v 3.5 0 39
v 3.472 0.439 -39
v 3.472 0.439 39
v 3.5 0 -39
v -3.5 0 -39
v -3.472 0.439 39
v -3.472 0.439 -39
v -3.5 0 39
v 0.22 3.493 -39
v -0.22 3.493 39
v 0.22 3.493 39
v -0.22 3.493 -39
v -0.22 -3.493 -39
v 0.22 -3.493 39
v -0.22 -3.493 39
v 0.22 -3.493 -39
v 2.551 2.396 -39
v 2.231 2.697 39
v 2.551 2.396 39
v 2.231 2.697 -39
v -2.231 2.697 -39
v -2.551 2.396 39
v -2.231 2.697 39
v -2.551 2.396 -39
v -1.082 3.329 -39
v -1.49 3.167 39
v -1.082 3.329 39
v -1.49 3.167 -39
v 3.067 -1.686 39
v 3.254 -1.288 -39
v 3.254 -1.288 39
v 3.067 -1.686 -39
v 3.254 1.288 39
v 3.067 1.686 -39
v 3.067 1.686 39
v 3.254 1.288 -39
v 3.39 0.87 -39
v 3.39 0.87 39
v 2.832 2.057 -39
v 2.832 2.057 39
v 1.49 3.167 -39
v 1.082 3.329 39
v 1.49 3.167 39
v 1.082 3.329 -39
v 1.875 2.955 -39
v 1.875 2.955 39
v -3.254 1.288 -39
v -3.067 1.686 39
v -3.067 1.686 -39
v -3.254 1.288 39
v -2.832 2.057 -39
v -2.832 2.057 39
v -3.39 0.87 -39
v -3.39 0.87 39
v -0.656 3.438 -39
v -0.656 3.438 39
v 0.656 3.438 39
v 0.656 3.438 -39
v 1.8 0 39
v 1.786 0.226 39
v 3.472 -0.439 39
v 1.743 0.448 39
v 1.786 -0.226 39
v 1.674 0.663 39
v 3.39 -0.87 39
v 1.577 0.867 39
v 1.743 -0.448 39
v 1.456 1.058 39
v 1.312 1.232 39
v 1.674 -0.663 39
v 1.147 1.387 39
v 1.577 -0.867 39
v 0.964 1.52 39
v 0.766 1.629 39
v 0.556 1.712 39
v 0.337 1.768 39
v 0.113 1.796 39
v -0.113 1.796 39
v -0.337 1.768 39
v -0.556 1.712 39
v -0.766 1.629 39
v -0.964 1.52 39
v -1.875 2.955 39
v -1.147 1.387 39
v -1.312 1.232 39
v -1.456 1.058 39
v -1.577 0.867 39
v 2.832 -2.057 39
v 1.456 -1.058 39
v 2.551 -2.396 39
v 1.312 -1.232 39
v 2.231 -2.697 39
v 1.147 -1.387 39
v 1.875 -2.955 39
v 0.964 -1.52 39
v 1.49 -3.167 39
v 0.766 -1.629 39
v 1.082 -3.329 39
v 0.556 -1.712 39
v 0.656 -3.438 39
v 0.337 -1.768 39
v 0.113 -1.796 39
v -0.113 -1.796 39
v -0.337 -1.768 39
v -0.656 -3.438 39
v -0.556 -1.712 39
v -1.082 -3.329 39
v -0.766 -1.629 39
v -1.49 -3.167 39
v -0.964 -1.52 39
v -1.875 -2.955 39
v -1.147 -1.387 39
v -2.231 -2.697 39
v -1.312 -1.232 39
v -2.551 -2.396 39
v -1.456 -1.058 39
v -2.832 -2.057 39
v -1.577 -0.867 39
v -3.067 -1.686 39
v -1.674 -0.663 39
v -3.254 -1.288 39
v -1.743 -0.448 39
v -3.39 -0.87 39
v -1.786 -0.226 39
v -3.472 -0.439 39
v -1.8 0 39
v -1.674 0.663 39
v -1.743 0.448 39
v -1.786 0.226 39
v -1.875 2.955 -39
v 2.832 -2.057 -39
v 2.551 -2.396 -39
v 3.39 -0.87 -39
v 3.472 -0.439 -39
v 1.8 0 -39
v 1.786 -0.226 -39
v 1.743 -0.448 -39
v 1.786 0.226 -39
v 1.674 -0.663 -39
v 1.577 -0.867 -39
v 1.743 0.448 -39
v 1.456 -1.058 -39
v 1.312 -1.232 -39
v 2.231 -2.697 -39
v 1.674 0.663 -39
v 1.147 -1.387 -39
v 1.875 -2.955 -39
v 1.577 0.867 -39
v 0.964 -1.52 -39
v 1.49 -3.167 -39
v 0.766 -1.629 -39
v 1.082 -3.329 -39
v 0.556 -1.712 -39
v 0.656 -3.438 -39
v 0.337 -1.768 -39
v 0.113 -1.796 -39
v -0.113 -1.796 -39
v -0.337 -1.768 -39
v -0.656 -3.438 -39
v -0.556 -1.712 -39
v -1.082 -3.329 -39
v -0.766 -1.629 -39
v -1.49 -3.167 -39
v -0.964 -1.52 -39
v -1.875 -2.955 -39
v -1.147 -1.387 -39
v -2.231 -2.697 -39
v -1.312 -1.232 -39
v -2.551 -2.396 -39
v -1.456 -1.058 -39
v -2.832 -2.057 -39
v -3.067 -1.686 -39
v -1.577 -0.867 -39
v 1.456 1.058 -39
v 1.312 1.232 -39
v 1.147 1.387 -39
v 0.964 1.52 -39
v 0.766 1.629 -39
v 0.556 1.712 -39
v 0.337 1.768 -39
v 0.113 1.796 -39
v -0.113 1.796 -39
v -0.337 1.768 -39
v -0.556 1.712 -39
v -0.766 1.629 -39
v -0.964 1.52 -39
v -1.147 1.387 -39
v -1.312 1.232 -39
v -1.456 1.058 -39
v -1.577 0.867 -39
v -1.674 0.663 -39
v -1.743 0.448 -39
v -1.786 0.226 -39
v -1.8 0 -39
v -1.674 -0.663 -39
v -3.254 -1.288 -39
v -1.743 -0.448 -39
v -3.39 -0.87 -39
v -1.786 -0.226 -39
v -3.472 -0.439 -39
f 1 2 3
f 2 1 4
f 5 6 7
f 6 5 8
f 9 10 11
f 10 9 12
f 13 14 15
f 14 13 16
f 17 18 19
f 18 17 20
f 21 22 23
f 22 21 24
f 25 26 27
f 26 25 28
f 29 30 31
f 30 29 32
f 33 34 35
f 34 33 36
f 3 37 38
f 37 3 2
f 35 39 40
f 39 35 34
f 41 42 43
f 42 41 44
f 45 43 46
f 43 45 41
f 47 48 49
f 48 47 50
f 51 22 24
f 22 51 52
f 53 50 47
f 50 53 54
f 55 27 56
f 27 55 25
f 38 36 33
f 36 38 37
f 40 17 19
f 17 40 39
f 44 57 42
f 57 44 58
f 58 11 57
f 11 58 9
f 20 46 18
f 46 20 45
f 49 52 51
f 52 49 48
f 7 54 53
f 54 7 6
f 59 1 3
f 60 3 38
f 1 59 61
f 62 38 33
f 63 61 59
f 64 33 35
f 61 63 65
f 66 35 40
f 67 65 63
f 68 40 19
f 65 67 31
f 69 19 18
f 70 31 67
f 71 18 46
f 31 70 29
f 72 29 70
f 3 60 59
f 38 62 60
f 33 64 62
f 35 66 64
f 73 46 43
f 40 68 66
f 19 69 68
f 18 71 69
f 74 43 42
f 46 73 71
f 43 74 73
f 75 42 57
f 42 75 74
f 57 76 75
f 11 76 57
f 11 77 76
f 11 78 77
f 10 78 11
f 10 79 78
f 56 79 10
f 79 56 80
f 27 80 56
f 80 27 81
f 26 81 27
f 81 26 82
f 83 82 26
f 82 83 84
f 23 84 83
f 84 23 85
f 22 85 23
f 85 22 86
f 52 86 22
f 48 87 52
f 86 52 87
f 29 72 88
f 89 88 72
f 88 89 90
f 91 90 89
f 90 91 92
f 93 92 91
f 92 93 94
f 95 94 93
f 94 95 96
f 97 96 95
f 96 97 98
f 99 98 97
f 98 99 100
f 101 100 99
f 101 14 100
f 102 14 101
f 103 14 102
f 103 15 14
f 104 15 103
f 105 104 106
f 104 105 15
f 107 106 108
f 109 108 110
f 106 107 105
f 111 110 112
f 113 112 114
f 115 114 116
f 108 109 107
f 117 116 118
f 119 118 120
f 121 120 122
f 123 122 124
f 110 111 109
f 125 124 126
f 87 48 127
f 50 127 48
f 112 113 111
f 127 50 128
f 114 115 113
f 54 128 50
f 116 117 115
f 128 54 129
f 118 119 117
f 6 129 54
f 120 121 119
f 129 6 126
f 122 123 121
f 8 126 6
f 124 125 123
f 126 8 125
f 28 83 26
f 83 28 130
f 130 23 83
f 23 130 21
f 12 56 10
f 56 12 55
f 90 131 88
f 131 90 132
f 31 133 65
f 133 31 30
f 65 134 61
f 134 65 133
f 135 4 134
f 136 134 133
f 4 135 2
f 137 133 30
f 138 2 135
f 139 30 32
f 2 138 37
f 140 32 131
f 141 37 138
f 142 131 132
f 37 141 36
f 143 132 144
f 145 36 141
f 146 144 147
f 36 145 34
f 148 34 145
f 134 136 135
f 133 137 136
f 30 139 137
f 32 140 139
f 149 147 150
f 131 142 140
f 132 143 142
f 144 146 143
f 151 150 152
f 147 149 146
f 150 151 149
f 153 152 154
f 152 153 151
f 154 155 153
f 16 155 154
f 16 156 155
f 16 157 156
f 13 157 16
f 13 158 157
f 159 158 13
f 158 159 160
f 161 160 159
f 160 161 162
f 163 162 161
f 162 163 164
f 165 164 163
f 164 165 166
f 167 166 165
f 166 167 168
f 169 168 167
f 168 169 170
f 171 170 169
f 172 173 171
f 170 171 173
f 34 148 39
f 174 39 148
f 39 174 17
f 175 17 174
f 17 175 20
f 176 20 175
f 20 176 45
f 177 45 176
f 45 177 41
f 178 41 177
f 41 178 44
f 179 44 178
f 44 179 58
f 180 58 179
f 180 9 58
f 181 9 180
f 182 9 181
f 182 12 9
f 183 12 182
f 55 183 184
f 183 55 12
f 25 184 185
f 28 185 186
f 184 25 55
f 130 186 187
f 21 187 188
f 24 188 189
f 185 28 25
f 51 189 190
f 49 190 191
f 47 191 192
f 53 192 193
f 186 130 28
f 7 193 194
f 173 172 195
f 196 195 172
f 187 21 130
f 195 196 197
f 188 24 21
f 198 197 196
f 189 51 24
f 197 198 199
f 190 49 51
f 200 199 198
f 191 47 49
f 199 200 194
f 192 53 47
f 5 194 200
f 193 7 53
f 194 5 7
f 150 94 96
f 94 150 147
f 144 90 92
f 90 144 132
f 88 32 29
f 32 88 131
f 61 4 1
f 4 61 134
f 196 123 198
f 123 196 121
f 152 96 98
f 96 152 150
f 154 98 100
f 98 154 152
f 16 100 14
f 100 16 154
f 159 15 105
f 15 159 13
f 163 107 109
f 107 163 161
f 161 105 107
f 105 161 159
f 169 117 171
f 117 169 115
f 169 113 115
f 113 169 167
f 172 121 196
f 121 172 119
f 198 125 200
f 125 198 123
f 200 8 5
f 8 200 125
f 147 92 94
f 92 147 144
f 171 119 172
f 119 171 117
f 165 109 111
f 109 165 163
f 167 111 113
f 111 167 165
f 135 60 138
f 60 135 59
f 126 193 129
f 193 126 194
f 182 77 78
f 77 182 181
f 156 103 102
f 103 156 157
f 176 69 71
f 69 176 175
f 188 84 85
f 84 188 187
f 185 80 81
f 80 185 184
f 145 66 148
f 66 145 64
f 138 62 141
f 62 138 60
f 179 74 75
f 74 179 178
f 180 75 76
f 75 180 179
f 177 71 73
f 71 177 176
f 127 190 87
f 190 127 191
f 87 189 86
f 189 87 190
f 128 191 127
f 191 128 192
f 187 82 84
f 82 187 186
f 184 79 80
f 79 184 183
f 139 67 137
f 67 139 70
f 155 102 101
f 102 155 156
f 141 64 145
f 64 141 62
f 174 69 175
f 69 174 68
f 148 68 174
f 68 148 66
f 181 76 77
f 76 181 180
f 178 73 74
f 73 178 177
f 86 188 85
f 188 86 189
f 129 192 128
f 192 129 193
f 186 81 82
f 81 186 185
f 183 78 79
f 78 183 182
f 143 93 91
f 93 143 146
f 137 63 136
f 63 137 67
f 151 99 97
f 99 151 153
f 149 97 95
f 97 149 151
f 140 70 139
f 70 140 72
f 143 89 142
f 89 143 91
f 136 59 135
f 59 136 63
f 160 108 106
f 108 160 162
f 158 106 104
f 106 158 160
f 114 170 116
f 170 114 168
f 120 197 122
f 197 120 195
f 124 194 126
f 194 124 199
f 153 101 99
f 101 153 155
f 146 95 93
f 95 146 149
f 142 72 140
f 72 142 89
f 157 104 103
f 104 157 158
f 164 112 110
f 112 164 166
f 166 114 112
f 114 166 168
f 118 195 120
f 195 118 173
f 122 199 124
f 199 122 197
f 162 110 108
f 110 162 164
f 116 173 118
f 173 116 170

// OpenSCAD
$fn = 50;


difference() {
	union() {
		translate(v = [0, 0, -39.0000000000]) {
			cylinder(h = 78, r = 3.5000000000);
		}
	}
	union() {
		translate(v = [0, 0, -100.0000000000]) {
			cylinder(h = 200, r = 1.8000000000);
		}
	}
}
